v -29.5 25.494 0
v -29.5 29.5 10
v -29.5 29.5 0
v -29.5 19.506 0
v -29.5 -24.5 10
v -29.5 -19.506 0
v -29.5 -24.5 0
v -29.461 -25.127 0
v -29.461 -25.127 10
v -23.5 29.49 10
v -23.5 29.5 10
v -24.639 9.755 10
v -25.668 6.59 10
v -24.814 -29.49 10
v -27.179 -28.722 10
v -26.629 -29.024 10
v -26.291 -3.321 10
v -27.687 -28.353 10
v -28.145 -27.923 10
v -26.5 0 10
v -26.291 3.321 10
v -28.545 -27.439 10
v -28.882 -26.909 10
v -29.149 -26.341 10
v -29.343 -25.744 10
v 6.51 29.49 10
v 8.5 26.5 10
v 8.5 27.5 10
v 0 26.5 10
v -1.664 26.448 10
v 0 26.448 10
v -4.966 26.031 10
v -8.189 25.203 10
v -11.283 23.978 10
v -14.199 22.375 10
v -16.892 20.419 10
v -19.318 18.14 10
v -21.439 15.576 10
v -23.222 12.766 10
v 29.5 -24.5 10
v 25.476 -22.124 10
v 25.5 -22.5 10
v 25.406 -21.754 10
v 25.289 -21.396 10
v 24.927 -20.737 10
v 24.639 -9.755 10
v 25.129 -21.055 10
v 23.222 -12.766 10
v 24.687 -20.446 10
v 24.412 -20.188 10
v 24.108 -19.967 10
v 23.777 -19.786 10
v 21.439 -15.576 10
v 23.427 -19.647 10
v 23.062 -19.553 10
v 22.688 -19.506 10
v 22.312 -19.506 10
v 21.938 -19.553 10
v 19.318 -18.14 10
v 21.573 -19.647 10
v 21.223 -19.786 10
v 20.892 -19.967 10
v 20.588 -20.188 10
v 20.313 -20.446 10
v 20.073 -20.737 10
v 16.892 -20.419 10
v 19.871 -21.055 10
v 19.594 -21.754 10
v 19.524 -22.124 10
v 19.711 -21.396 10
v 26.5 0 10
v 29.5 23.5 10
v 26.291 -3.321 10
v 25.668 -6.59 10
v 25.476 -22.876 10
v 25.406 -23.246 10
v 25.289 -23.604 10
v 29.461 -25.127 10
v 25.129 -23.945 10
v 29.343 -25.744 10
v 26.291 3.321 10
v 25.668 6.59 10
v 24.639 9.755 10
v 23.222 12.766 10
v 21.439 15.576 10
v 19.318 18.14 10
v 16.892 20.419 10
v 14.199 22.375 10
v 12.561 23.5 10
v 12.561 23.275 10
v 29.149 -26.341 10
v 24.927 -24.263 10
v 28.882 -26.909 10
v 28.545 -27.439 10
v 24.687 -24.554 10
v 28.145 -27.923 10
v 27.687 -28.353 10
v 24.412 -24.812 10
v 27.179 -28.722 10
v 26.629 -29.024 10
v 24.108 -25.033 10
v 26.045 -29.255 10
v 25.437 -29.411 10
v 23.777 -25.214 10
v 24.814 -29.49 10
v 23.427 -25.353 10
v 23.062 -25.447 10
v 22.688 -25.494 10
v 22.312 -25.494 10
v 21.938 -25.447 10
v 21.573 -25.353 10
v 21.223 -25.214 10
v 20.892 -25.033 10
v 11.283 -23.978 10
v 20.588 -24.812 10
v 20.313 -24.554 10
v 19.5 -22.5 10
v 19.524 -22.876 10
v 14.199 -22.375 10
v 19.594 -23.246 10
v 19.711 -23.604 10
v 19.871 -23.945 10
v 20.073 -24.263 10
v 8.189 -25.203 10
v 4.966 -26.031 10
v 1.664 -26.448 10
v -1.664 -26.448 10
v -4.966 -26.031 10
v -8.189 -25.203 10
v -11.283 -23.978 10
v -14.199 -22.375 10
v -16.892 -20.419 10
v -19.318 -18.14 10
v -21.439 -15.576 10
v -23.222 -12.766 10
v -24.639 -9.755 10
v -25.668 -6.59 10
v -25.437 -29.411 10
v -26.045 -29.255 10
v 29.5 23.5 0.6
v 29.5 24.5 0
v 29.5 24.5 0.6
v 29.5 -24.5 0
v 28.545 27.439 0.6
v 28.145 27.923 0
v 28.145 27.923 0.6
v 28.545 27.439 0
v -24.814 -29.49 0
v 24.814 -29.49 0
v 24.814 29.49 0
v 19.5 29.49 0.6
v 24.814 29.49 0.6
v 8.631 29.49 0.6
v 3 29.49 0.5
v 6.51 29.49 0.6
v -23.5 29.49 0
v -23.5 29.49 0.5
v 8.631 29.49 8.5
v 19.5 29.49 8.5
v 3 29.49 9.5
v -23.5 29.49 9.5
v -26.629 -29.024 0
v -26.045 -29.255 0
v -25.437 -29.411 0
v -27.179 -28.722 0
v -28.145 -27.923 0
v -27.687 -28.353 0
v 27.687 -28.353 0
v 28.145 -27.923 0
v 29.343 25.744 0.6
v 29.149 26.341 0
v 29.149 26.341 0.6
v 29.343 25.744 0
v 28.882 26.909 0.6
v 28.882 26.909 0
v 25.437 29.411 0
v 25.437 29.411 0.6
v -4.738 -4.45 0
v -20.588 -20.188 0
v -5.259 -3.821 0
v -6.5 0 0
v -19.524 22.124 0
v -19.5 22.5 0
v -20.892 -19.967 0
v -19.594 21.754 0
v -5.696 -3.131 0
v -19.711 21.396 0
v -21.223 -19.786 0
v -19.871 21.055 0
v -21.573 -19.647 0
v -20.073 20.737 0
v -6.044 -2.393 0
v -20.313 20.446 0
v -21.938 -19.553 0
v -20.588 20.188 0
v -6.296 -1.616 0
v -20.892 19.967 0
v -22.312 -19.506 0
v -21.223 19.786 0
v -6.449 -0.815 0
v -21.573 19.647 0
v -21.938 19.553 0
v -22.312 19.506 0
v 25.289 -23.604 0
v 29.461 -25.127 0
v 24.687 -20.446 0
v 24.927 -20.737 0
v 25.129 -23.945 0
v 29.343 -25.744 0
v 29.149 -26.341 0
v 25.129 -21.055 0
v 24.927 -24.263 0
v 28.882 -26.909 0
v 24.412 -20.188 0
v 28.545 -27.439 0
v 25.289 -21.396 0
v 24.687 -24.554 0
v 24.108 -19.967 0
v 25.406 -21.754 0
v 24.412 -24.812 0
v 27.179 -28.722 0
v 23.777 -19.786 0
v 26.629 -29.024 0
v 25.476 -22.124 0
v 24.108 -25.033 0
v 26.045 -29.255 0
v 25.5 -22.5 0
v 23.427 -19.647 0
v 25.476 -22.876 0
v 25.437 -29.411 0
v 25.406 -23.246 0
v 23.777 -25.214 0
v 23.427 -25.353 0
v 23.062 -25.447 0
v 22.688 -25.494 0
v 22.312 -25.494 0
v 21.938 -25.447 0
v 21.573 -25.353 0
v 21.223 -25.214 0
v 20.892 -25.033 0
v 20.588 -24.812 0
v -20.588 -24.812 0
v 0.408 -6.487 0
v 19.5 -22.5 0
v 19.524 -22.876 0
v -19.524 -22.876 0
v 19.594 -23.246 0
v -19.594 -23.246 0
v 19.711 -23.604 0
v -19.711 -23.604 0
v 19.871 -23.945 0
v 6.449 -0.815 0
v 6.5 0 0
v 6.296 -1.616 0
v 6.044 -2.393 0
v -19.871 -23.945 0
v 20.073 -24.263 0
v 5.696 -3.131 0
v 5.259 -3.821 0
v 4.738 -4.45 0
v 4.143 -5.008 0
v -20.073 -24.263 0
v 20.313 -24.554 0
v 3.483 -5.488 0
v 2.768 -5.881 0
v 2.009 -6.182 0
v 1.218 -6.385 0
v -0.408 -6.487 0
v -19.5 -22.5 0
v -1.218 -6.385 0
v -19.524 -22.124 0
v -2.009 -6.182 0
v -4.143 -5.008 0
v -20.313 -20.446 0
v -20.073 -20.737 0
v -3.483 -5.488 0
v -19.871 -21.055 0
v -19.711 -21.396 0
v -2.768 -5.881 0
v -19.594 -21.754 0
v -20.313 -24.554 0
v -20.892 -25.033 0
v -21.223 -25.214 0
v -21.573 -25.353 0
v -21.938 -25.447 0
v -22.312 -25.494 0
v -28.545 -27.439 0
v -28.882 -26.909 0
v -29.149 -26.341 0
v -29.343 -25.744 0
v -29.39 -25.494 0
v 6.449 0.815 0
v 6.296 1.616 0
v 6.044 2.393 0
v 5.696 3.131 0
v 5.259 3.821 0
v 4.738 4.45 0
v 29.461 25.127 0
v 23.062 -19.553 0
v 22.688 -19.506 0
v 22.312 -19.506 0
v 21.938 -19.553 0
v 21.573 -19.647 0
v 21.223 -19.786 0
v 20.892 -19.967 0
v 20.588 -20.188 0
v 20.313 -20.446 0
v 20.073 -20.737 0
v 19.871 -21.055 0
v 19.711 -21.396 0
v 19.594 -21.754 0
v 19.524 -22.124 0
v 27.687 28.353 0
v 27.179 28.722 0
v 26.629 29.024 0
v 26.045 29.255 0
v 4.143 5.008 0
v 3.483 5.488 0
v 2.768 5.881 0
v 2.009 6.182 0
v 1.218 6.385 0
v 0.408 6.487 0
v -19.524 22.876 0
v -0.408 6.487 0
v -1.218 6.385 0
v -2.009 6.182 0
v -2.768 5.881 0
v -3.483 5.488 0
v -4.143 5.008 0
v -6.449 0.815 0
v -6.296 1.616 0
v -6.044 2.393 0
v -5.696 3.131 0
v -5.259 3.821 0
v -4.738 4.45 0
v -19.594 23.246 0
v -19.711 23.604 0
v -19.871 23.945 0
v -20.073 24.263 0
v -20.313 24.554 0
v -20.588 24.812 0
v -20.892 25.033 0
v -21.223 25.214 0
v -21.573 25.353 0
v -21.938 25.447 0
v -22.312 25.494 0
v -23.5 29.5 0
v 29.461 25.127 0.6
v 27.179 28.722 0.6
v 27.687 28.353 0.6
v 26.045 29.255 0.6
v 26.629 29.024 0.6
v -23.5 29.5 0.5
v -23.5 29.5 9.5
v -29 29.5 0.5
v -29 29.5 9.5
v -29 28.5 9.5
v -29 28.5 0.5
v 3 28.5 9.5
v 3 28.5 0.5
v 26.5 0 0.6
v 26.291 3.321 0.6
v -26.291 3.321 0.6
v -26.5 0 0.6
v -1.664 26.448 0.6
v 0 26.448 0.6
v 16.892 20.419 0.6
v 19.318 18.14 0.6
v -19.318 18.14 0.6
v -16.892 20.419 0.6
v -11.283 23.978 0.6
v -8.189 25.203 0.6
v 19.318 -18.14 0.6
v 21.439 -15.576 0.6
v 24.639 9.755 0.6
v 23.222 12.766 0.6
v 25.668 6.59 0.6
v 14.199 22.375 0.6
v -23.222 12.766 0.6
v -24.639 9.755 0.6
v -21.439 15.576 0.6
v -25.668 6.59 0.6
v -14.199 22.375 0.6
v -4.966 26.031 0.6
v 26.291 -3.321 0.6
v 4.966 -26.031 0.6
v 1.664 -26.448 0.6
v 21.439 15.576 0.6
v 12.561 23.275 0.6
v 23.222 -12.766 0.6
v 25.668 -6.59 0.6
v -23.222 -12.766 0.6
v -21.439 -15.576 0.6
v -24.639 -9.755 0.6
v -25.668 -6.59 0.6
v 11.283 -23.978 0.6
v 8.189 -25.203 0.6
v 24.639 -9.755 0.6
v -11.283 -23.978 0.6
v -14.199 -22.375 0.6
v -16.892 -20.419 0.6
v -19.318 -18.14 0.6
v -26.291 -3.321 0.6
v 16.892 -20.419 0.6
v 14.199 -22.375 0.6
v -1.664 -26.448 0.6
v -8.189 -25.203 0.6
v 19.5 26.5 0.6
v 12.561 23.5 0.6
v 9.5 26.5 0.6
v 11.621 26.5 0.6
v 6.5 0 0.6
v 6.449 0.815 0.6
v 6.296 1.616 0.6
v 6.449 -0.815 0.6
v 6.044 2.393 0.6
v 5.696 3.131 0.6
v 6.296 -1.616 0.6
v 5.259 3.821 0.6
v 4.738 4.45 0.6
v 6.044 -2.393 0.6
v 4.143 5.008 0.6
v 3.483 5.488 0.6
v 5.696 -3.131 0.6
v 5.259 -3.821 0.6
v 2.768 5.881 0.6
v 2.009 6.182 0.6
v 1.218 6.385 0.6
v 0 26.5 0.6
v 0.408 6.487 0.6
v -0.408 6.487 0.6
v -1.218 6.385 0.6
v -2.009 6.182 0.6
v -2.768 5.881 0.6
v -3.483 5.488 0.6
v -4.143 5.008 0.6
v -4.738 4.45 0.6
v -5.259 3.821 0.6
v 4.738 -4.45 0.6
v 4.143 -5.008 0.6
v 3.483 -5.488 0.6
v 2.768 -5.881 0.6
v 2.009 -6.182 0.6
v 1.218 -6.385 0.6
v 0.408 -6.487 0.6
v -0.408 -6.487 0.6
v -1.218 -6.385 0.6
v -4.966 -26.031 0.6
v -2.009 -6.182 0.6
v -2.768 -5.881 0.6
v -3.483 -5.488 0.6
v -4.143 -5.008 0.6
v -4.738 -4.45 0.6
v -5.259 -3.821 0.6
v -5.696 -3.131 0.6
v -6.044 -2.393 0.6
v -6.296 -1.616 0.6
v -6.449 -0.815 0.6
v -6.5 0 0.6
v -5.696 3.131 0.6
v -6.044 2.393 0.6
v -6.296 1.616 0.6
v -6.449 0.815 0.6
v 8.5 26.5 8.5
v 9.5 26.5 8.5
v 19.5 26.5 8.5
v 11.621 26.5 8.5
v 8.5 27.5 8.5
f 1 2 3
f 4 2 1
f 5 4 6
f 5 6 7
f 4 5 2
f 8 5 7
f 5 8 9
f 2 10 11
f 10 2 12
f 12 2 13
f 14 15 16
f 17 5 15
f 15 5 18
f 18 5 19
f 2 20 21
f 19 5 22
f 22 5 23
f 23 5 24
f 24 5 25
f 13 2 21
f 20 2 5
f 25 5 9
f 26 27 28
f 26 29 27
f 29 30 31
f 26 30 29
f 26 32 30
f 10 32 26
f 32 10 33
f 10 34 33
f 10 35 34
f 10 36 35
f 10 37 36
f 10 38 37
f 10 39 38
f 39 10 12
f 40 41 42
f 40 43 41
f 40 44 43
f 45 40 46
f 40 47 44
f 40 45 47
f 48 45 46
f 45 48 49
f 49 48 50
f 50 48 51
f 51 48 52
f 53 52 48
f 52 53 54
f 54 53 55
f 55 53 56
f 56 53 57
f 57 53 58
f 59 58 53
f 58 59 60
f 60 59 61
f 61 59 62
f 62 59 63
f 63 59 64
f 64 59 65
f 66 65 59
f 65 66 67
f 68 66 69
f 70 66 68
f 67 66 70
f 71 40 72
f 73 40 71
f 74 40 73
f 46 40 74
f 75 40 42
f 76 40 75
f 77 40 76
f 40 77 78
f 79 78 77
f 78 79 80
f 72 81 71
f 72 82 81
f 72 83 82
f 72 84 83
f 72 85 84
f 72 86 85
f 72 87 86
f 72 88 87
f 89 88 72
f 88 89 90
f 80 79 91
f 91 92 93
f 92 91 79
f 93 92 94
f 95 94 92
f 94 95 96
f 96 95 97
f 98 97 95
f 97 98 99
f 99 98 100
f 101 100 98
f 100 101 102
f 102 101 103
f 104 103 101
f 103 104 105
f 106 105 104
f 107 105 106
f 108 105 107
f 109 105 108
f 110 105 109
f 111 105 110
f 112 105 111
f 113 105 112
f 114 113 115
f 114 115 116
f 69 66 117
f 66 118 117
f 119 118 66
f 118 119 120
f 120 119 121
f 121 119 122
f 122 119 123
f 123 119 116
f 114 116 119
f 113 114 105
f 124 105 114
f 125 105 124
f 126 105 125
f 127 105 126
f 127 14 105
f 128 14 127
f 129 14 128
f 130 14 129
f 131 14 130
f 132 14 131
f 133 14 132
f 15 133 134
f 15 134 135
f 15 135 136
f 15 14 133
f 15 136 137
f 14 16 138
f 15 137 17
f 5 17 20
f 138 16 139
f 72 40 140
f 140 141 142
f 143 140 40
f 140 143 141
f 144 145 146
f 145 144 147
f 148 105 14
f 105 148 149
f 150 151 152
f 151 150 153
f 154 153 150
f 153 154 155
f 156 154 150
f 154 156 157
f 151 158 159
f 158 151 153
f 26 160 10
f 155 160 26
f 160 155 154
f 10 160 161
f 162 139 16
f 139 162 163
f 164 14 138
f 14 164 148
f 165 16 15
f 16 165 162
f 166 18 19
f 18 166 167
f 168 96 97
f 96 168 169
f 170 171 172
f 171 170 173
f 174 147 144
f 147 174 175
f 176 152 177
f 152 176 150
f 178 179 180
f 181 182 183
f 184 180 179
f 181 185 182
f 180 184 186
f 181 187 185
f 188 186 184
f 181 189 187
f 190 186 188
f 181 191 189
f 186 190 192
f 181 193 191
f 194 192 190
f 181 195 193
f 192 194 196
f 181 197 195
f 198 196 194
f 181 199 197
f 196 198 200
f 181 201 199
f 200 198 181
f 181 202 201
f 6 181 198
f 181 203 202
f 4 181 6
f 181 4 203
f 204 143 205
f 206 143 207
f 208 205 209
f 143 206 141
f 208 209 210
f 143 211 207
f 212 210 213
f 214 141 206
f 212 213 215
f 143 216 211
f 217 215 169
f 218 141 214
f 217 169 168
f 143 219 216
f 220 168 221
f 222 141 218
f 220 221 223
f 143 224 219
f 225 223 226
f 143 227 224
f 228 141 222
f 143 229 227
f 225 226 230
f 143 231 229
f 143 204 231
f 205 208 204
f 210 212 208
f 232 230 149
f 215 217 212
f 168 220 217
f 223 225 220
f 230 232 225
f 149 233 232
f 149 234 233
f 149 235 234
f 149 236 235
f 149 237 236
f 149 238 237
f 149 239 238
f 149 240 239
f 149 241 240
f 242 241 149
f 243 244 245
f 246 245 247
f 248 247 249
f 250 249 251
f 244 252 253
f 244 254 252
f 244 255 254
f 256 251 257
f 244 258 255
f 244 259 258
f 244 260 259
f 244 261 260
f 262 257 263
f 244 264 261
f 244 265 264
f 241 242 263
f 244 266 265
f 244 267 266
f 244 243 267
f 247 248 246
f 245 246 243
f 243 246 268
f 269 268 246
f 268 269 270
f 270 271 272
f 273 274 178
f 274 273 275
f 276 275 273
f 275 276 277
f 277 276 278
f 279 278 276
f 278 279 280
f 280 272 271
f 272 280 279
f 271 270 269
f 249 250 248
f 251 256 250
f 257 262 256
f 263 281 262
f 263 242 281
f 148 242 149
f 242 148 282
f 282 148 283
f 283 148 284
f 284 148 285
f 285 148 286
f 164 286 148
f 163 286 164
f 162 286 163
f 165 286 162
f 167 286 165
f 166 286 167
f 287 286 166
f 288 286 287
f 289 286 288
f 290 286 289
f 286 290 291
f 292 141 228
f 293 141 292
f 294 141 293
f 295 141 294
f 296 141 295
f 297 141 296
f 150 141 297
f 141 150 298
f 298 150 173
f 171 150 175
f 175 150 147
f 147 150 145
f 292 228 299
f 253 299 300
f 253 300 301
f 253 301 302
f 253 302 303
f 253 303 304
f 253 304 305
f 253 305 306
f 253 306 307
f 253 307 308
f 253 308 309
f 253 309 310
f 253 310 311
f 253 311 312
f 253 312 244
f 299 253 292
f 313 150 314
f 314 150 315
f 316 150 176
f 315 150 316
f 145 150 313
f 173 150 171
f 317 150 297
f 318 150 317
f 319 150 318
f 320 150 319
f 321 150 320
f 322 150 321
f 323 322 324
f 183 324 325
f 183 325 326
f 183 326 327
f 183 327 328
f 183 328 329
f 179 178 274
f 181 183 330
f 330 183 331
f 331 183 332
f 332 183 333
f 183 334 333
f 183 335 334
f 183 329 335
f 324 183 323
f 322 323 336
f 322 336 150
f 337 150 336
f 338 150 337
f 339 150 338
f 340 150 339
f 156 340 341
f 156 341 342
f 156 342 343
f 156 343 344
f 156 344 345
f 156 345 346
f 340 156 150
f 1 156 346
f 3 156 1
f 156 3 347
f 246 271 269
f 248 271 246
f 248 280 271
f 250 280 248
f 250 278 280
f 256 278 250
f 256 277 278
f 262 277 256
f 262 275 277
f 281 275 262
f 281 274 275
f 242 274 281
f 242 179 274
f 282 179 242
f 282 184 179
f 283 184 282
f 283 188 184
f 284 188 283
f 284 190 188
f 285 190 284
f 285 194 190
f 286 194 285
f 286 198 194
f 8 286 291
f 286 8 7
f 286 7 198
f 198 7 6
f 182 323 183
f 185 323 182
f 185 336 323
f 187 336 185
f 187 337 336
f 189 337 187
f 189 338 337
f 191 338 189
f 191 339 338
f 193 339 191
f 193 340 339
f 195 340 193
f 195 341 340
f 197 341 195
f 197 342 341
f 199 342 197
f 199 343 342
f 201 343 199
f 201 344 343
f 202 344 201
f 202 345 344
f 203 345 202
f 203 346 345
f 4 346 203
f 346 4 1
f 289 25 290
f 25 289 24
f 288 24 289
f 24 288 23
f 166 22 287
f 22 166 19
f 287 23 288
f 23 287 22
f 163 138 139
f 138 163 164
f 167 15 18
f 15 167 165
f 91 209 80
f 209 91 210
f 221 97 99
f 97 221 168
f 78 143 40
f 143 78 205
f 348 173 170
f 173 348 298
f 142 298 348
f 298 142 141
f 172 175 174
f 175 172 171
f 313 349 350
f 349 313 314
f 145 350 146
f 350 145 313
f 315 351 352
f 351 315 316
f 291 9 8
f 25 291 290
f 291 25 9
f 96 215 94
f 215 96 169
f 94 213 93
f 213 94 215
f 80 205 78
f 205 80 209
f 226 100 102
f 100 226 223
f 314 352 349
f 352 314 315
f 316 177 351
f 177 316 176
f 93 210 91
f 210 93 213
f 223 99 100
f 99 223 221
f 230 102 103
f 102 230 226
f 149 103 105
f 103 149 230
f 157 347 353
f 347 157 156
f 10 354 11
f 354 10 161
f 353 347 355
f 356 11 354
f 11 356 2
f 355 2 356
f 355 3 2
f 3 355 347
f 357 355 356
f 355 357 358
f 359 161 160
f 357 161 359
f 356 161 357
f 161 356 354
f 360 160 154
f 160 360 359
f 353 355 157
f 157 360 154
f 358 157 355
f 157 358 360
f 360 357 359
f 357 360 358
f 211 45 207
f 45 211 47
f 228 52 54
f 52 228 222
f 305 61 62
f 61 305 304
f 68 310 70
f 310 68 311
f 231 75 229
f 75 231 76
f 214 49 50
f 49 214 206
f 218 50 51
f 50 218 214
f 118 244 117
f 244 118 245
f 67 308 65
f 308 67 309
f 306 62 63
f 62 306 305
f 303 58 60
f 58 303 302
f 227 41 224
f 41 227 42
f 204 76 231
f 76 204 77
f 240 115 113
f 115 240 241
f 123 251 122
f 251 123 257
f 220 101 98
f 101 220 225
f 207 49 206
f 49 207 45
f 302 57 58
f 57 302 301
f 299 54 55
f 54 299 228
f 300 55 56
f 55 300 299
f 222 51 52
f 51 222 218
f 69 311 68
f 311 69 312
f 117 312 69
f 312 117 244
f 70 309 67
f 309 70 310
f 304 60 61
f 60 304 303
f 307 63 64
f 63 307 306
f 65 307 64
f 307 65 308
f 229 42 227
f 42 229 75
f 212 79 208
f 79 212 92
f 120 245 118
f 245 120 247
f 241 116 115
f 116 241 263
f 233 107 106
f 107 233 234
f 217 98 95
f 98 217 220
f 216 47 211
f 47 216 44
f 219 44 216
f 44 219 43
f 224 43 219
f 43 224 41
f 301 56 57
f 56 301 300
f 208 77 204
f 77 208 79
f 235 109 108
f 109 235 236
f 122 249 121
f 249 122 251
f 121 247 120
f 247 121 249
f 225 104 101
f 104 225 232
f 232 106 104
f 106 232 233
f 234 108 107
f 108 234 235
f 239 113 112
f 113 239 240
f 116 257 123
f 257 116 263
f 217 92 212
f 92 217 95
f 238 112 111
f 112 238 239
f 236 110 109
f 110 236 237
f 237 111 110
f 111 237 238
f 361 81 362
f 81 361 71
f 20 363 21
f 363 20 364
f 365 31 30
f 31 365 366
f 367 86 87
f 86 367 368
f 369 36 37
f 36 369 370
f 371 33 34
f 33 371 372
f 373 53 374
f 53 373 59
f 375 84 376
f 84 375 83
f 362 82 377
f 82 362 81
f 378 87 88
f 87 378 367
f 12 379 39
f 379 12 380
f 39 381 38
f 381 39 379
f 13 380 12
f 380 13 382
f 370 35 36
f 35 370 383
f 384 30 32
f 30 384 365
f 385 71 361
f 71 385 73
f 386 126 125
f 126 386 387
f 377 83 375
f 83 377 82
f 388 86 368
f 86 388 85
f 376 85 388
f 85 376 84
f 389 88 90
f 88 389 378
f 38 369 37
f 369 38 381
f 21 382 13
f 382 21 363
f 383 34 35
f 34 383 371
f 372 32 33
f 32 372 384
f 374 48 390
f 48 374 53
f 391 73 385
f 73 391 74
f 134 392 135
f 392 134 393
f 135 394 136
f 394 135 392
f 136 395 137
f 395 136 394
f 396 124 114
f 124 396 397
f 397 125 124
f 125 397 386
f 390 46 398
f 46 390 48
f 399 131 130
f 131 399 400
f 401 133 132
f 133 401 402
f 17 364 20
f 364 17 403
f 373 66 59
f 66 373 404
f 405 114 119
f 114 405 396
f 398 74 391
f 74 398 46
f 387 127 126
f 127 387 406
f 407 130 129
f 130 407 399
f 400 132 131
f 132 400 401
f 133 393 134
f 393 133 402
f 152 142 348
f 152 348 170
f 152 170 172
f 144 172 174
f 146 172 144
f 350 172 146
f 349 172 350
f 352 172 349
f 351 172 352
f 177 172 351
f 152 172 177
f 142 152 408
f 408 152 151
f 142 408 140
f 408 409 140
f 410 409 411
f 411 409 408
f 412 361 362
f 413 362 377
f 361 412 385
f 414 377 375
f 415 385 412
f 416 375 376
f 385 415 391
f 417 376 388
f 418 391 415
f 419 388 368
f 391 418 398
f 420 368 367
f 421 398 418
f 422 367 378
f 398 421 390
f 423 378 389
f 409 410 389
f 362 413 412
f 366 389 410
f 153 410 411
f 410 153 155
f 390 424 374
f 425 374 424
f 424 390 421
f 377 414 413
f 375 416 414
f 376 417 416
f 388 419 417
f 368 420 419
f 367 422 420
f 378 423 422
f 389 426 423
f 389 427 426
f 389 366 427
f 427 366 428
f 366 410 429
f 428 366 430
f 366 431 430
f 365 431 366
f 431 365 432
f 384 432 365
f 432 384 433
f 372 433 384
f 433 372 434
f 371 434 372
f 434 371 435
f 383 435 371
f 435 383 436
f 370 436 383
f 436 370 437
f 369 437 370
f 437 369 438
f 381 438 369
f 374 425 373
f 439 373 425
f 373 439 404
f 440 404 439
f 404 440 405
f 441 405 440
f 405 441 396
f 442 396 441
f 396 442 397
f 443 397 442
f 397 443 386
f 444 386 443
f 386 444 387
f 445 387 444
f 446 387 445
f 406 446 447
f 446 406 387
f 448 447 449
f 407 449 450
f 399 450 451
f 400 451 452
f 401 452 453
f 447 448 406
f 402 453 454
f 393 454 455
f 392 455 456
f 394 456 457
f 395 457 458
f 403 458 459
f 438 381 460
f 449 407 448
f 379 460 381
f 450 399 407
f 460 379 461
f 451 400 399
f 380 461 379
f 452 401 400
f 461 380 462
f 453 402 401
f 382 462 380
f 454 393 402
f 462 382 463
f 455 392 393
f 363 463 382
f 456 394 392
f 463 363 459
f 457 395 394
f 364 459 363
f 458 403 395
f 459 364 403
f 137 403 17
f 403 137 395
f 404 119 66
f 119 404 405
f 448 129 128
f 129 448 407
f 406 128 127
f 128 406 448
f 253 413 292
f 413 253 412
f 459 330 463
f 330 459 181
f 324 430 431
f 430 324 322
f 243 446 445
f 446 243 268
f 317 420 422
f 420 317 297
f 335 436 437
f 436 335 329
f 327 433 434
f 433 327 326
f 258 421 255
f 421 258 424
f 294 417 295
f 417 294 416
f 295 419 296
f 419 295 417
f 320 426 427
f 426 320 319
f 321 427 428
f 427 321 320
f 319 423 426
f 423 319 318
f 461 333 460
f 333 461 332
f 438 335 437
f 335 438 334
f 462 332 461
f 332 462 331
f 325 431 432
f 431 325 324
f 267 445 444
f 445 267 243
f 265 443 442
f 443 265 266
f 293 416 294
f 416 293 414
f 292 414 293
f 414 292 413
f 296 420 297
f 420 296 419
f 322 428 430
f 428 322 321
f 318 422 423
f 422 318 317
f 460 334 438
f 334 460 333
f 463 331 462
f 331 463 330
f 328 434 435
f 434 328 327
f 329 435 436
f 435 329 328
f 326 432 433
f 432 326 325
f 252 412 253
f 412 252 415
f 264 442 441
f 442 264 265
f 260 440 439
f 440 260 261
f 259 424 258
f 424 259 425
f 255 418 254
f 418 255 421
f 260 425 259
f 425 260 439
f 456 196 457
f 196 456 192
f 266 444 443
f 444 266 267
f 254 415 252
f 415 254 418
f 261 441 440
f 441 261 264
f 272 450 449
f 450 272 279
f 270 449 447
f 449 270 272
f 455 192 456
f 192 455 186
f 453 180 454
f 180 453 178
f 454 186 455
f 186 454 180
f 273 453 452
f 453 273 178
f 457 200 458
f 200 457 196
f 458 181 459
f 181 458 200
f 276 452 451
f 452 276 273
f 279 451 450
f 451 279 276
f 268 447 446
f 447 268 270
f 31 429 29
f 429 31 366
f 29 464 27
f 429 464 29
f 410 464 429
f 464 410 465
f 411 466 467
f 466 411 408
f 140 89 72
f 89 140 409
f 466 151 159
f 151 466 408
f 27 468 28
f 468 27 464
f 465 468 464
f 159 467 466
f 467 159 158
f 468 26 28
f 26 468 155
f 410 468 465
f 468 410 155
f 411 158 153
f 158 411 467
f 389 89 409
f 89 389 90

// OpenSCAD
$fn = 50;


difference() {
	union() {
		hull() {
			translate(v = [-24.5000000000, 24.5000000000, 0]) {
				cylinder(h = 10, r = 5);
			}
			translate(v = [24.5000000000, 24.5000000000, 0]) {
				cylinder(h = 10, r = 5);
			}
			translate(v = [-24.5000000000, -24.5000000000, 0]) {
				cylinder(h = 10, r = 5);
			}
			translate(v = [24.5000000000, -24.5000000000, 0]) {
				cylinder(h = 10, r = 5);
			}
		}
		translate(v = [-29.5000000000, 23.5000000000, 0]) {
			cube(size = [6, 6, 10]);
		}
	}
	union() {
		translate(v = [-30.0000000000, -22.5000000000, -250.0000000000]) {
			rotate(a = [0, 0, 0]) {
				difference() {
					union() {
						hull() {
							translate(v = [7.5000000000, 0, 0]) {
								cylinder(h = 250, r = 3.0000000000, r1 = 3.0000000000, r2 = 3.0000000000);
							}
							translate(v = [-7.5000000000, 0, 0]) {
								cylinder(h = 250, r = 3.0000000000, r1 = 3.0000000000, r2 = 3.0000000000);
							}
						}
					}
					union();
				}
			}
		}
		translate(v = [-30.0000000000, 22.5000000000, -250.0000000000]) {
			rotate(a = [0, 0, 0]) {
				difference() {
					union() {
						hull() {
							translate(v = [7.5000000000, 0, 0]) {
								cylinder(h = 250, r = 3.0000000000, r1 = 3.0000000000, r2 = 3.0000000000);
							}
							translate(v = [-7.5000000000, 0, 0]) {
								cylinder(h = 250, r = 3.0000000000, r1 = 3.0000000000, r2 = 3.0000000000);
							}
						}
					}
					union();
				}
			}
		}
		translate(v = [-29.0000000000, 28.5000000000, 0.5000000000]) {
			cube(size = [32, 1, 9.0000000000]);
		}
		translate(v = [22.5000000000, -22.5000000000, -50.0000000000]) {
			cylinder(h = 100, r = 3.0000000000);
		}
		translate(v = [0, 0, 0.6000000000]) {
			cylinder(h = 12.4000000000, r = 26.5000000000);
		}
		translate(v = [0, 0, -5.0000000000]) {
			cylinder(h = 10, r = 6.5000000000);
		}
		translate(v = [0.0000000000, 23.5000000000, 0.6000000000]) {
			cube(size = [29.5000000000, 3, 12.4000000000]);
		}
		translate(v = [19.5000000000, 23.5000000000, 0.6000000000]) {
			cube(size = [10, 6, 12.4000000000]);
		}
		translate(v = [8.5000000000, 23.5000000000, 8.5000000000]) {
			cube(size = [21, 6, 1.5000000000]);
		}
		translate(v = [5.7500000000, 30.2500000000, 0.6000000000]) {
			rotate(a = [0, 0, -45]) {
				cube(size = [7.5000000000, 1.5000000000, 12.4000000000]);
			}
		}
		translate(v = [5.0610000000, 21.5000000000, 0.6000000000]) {
			cube(size = [7.5000000000, 2, 9.4000000000]);
		}
	}
}
